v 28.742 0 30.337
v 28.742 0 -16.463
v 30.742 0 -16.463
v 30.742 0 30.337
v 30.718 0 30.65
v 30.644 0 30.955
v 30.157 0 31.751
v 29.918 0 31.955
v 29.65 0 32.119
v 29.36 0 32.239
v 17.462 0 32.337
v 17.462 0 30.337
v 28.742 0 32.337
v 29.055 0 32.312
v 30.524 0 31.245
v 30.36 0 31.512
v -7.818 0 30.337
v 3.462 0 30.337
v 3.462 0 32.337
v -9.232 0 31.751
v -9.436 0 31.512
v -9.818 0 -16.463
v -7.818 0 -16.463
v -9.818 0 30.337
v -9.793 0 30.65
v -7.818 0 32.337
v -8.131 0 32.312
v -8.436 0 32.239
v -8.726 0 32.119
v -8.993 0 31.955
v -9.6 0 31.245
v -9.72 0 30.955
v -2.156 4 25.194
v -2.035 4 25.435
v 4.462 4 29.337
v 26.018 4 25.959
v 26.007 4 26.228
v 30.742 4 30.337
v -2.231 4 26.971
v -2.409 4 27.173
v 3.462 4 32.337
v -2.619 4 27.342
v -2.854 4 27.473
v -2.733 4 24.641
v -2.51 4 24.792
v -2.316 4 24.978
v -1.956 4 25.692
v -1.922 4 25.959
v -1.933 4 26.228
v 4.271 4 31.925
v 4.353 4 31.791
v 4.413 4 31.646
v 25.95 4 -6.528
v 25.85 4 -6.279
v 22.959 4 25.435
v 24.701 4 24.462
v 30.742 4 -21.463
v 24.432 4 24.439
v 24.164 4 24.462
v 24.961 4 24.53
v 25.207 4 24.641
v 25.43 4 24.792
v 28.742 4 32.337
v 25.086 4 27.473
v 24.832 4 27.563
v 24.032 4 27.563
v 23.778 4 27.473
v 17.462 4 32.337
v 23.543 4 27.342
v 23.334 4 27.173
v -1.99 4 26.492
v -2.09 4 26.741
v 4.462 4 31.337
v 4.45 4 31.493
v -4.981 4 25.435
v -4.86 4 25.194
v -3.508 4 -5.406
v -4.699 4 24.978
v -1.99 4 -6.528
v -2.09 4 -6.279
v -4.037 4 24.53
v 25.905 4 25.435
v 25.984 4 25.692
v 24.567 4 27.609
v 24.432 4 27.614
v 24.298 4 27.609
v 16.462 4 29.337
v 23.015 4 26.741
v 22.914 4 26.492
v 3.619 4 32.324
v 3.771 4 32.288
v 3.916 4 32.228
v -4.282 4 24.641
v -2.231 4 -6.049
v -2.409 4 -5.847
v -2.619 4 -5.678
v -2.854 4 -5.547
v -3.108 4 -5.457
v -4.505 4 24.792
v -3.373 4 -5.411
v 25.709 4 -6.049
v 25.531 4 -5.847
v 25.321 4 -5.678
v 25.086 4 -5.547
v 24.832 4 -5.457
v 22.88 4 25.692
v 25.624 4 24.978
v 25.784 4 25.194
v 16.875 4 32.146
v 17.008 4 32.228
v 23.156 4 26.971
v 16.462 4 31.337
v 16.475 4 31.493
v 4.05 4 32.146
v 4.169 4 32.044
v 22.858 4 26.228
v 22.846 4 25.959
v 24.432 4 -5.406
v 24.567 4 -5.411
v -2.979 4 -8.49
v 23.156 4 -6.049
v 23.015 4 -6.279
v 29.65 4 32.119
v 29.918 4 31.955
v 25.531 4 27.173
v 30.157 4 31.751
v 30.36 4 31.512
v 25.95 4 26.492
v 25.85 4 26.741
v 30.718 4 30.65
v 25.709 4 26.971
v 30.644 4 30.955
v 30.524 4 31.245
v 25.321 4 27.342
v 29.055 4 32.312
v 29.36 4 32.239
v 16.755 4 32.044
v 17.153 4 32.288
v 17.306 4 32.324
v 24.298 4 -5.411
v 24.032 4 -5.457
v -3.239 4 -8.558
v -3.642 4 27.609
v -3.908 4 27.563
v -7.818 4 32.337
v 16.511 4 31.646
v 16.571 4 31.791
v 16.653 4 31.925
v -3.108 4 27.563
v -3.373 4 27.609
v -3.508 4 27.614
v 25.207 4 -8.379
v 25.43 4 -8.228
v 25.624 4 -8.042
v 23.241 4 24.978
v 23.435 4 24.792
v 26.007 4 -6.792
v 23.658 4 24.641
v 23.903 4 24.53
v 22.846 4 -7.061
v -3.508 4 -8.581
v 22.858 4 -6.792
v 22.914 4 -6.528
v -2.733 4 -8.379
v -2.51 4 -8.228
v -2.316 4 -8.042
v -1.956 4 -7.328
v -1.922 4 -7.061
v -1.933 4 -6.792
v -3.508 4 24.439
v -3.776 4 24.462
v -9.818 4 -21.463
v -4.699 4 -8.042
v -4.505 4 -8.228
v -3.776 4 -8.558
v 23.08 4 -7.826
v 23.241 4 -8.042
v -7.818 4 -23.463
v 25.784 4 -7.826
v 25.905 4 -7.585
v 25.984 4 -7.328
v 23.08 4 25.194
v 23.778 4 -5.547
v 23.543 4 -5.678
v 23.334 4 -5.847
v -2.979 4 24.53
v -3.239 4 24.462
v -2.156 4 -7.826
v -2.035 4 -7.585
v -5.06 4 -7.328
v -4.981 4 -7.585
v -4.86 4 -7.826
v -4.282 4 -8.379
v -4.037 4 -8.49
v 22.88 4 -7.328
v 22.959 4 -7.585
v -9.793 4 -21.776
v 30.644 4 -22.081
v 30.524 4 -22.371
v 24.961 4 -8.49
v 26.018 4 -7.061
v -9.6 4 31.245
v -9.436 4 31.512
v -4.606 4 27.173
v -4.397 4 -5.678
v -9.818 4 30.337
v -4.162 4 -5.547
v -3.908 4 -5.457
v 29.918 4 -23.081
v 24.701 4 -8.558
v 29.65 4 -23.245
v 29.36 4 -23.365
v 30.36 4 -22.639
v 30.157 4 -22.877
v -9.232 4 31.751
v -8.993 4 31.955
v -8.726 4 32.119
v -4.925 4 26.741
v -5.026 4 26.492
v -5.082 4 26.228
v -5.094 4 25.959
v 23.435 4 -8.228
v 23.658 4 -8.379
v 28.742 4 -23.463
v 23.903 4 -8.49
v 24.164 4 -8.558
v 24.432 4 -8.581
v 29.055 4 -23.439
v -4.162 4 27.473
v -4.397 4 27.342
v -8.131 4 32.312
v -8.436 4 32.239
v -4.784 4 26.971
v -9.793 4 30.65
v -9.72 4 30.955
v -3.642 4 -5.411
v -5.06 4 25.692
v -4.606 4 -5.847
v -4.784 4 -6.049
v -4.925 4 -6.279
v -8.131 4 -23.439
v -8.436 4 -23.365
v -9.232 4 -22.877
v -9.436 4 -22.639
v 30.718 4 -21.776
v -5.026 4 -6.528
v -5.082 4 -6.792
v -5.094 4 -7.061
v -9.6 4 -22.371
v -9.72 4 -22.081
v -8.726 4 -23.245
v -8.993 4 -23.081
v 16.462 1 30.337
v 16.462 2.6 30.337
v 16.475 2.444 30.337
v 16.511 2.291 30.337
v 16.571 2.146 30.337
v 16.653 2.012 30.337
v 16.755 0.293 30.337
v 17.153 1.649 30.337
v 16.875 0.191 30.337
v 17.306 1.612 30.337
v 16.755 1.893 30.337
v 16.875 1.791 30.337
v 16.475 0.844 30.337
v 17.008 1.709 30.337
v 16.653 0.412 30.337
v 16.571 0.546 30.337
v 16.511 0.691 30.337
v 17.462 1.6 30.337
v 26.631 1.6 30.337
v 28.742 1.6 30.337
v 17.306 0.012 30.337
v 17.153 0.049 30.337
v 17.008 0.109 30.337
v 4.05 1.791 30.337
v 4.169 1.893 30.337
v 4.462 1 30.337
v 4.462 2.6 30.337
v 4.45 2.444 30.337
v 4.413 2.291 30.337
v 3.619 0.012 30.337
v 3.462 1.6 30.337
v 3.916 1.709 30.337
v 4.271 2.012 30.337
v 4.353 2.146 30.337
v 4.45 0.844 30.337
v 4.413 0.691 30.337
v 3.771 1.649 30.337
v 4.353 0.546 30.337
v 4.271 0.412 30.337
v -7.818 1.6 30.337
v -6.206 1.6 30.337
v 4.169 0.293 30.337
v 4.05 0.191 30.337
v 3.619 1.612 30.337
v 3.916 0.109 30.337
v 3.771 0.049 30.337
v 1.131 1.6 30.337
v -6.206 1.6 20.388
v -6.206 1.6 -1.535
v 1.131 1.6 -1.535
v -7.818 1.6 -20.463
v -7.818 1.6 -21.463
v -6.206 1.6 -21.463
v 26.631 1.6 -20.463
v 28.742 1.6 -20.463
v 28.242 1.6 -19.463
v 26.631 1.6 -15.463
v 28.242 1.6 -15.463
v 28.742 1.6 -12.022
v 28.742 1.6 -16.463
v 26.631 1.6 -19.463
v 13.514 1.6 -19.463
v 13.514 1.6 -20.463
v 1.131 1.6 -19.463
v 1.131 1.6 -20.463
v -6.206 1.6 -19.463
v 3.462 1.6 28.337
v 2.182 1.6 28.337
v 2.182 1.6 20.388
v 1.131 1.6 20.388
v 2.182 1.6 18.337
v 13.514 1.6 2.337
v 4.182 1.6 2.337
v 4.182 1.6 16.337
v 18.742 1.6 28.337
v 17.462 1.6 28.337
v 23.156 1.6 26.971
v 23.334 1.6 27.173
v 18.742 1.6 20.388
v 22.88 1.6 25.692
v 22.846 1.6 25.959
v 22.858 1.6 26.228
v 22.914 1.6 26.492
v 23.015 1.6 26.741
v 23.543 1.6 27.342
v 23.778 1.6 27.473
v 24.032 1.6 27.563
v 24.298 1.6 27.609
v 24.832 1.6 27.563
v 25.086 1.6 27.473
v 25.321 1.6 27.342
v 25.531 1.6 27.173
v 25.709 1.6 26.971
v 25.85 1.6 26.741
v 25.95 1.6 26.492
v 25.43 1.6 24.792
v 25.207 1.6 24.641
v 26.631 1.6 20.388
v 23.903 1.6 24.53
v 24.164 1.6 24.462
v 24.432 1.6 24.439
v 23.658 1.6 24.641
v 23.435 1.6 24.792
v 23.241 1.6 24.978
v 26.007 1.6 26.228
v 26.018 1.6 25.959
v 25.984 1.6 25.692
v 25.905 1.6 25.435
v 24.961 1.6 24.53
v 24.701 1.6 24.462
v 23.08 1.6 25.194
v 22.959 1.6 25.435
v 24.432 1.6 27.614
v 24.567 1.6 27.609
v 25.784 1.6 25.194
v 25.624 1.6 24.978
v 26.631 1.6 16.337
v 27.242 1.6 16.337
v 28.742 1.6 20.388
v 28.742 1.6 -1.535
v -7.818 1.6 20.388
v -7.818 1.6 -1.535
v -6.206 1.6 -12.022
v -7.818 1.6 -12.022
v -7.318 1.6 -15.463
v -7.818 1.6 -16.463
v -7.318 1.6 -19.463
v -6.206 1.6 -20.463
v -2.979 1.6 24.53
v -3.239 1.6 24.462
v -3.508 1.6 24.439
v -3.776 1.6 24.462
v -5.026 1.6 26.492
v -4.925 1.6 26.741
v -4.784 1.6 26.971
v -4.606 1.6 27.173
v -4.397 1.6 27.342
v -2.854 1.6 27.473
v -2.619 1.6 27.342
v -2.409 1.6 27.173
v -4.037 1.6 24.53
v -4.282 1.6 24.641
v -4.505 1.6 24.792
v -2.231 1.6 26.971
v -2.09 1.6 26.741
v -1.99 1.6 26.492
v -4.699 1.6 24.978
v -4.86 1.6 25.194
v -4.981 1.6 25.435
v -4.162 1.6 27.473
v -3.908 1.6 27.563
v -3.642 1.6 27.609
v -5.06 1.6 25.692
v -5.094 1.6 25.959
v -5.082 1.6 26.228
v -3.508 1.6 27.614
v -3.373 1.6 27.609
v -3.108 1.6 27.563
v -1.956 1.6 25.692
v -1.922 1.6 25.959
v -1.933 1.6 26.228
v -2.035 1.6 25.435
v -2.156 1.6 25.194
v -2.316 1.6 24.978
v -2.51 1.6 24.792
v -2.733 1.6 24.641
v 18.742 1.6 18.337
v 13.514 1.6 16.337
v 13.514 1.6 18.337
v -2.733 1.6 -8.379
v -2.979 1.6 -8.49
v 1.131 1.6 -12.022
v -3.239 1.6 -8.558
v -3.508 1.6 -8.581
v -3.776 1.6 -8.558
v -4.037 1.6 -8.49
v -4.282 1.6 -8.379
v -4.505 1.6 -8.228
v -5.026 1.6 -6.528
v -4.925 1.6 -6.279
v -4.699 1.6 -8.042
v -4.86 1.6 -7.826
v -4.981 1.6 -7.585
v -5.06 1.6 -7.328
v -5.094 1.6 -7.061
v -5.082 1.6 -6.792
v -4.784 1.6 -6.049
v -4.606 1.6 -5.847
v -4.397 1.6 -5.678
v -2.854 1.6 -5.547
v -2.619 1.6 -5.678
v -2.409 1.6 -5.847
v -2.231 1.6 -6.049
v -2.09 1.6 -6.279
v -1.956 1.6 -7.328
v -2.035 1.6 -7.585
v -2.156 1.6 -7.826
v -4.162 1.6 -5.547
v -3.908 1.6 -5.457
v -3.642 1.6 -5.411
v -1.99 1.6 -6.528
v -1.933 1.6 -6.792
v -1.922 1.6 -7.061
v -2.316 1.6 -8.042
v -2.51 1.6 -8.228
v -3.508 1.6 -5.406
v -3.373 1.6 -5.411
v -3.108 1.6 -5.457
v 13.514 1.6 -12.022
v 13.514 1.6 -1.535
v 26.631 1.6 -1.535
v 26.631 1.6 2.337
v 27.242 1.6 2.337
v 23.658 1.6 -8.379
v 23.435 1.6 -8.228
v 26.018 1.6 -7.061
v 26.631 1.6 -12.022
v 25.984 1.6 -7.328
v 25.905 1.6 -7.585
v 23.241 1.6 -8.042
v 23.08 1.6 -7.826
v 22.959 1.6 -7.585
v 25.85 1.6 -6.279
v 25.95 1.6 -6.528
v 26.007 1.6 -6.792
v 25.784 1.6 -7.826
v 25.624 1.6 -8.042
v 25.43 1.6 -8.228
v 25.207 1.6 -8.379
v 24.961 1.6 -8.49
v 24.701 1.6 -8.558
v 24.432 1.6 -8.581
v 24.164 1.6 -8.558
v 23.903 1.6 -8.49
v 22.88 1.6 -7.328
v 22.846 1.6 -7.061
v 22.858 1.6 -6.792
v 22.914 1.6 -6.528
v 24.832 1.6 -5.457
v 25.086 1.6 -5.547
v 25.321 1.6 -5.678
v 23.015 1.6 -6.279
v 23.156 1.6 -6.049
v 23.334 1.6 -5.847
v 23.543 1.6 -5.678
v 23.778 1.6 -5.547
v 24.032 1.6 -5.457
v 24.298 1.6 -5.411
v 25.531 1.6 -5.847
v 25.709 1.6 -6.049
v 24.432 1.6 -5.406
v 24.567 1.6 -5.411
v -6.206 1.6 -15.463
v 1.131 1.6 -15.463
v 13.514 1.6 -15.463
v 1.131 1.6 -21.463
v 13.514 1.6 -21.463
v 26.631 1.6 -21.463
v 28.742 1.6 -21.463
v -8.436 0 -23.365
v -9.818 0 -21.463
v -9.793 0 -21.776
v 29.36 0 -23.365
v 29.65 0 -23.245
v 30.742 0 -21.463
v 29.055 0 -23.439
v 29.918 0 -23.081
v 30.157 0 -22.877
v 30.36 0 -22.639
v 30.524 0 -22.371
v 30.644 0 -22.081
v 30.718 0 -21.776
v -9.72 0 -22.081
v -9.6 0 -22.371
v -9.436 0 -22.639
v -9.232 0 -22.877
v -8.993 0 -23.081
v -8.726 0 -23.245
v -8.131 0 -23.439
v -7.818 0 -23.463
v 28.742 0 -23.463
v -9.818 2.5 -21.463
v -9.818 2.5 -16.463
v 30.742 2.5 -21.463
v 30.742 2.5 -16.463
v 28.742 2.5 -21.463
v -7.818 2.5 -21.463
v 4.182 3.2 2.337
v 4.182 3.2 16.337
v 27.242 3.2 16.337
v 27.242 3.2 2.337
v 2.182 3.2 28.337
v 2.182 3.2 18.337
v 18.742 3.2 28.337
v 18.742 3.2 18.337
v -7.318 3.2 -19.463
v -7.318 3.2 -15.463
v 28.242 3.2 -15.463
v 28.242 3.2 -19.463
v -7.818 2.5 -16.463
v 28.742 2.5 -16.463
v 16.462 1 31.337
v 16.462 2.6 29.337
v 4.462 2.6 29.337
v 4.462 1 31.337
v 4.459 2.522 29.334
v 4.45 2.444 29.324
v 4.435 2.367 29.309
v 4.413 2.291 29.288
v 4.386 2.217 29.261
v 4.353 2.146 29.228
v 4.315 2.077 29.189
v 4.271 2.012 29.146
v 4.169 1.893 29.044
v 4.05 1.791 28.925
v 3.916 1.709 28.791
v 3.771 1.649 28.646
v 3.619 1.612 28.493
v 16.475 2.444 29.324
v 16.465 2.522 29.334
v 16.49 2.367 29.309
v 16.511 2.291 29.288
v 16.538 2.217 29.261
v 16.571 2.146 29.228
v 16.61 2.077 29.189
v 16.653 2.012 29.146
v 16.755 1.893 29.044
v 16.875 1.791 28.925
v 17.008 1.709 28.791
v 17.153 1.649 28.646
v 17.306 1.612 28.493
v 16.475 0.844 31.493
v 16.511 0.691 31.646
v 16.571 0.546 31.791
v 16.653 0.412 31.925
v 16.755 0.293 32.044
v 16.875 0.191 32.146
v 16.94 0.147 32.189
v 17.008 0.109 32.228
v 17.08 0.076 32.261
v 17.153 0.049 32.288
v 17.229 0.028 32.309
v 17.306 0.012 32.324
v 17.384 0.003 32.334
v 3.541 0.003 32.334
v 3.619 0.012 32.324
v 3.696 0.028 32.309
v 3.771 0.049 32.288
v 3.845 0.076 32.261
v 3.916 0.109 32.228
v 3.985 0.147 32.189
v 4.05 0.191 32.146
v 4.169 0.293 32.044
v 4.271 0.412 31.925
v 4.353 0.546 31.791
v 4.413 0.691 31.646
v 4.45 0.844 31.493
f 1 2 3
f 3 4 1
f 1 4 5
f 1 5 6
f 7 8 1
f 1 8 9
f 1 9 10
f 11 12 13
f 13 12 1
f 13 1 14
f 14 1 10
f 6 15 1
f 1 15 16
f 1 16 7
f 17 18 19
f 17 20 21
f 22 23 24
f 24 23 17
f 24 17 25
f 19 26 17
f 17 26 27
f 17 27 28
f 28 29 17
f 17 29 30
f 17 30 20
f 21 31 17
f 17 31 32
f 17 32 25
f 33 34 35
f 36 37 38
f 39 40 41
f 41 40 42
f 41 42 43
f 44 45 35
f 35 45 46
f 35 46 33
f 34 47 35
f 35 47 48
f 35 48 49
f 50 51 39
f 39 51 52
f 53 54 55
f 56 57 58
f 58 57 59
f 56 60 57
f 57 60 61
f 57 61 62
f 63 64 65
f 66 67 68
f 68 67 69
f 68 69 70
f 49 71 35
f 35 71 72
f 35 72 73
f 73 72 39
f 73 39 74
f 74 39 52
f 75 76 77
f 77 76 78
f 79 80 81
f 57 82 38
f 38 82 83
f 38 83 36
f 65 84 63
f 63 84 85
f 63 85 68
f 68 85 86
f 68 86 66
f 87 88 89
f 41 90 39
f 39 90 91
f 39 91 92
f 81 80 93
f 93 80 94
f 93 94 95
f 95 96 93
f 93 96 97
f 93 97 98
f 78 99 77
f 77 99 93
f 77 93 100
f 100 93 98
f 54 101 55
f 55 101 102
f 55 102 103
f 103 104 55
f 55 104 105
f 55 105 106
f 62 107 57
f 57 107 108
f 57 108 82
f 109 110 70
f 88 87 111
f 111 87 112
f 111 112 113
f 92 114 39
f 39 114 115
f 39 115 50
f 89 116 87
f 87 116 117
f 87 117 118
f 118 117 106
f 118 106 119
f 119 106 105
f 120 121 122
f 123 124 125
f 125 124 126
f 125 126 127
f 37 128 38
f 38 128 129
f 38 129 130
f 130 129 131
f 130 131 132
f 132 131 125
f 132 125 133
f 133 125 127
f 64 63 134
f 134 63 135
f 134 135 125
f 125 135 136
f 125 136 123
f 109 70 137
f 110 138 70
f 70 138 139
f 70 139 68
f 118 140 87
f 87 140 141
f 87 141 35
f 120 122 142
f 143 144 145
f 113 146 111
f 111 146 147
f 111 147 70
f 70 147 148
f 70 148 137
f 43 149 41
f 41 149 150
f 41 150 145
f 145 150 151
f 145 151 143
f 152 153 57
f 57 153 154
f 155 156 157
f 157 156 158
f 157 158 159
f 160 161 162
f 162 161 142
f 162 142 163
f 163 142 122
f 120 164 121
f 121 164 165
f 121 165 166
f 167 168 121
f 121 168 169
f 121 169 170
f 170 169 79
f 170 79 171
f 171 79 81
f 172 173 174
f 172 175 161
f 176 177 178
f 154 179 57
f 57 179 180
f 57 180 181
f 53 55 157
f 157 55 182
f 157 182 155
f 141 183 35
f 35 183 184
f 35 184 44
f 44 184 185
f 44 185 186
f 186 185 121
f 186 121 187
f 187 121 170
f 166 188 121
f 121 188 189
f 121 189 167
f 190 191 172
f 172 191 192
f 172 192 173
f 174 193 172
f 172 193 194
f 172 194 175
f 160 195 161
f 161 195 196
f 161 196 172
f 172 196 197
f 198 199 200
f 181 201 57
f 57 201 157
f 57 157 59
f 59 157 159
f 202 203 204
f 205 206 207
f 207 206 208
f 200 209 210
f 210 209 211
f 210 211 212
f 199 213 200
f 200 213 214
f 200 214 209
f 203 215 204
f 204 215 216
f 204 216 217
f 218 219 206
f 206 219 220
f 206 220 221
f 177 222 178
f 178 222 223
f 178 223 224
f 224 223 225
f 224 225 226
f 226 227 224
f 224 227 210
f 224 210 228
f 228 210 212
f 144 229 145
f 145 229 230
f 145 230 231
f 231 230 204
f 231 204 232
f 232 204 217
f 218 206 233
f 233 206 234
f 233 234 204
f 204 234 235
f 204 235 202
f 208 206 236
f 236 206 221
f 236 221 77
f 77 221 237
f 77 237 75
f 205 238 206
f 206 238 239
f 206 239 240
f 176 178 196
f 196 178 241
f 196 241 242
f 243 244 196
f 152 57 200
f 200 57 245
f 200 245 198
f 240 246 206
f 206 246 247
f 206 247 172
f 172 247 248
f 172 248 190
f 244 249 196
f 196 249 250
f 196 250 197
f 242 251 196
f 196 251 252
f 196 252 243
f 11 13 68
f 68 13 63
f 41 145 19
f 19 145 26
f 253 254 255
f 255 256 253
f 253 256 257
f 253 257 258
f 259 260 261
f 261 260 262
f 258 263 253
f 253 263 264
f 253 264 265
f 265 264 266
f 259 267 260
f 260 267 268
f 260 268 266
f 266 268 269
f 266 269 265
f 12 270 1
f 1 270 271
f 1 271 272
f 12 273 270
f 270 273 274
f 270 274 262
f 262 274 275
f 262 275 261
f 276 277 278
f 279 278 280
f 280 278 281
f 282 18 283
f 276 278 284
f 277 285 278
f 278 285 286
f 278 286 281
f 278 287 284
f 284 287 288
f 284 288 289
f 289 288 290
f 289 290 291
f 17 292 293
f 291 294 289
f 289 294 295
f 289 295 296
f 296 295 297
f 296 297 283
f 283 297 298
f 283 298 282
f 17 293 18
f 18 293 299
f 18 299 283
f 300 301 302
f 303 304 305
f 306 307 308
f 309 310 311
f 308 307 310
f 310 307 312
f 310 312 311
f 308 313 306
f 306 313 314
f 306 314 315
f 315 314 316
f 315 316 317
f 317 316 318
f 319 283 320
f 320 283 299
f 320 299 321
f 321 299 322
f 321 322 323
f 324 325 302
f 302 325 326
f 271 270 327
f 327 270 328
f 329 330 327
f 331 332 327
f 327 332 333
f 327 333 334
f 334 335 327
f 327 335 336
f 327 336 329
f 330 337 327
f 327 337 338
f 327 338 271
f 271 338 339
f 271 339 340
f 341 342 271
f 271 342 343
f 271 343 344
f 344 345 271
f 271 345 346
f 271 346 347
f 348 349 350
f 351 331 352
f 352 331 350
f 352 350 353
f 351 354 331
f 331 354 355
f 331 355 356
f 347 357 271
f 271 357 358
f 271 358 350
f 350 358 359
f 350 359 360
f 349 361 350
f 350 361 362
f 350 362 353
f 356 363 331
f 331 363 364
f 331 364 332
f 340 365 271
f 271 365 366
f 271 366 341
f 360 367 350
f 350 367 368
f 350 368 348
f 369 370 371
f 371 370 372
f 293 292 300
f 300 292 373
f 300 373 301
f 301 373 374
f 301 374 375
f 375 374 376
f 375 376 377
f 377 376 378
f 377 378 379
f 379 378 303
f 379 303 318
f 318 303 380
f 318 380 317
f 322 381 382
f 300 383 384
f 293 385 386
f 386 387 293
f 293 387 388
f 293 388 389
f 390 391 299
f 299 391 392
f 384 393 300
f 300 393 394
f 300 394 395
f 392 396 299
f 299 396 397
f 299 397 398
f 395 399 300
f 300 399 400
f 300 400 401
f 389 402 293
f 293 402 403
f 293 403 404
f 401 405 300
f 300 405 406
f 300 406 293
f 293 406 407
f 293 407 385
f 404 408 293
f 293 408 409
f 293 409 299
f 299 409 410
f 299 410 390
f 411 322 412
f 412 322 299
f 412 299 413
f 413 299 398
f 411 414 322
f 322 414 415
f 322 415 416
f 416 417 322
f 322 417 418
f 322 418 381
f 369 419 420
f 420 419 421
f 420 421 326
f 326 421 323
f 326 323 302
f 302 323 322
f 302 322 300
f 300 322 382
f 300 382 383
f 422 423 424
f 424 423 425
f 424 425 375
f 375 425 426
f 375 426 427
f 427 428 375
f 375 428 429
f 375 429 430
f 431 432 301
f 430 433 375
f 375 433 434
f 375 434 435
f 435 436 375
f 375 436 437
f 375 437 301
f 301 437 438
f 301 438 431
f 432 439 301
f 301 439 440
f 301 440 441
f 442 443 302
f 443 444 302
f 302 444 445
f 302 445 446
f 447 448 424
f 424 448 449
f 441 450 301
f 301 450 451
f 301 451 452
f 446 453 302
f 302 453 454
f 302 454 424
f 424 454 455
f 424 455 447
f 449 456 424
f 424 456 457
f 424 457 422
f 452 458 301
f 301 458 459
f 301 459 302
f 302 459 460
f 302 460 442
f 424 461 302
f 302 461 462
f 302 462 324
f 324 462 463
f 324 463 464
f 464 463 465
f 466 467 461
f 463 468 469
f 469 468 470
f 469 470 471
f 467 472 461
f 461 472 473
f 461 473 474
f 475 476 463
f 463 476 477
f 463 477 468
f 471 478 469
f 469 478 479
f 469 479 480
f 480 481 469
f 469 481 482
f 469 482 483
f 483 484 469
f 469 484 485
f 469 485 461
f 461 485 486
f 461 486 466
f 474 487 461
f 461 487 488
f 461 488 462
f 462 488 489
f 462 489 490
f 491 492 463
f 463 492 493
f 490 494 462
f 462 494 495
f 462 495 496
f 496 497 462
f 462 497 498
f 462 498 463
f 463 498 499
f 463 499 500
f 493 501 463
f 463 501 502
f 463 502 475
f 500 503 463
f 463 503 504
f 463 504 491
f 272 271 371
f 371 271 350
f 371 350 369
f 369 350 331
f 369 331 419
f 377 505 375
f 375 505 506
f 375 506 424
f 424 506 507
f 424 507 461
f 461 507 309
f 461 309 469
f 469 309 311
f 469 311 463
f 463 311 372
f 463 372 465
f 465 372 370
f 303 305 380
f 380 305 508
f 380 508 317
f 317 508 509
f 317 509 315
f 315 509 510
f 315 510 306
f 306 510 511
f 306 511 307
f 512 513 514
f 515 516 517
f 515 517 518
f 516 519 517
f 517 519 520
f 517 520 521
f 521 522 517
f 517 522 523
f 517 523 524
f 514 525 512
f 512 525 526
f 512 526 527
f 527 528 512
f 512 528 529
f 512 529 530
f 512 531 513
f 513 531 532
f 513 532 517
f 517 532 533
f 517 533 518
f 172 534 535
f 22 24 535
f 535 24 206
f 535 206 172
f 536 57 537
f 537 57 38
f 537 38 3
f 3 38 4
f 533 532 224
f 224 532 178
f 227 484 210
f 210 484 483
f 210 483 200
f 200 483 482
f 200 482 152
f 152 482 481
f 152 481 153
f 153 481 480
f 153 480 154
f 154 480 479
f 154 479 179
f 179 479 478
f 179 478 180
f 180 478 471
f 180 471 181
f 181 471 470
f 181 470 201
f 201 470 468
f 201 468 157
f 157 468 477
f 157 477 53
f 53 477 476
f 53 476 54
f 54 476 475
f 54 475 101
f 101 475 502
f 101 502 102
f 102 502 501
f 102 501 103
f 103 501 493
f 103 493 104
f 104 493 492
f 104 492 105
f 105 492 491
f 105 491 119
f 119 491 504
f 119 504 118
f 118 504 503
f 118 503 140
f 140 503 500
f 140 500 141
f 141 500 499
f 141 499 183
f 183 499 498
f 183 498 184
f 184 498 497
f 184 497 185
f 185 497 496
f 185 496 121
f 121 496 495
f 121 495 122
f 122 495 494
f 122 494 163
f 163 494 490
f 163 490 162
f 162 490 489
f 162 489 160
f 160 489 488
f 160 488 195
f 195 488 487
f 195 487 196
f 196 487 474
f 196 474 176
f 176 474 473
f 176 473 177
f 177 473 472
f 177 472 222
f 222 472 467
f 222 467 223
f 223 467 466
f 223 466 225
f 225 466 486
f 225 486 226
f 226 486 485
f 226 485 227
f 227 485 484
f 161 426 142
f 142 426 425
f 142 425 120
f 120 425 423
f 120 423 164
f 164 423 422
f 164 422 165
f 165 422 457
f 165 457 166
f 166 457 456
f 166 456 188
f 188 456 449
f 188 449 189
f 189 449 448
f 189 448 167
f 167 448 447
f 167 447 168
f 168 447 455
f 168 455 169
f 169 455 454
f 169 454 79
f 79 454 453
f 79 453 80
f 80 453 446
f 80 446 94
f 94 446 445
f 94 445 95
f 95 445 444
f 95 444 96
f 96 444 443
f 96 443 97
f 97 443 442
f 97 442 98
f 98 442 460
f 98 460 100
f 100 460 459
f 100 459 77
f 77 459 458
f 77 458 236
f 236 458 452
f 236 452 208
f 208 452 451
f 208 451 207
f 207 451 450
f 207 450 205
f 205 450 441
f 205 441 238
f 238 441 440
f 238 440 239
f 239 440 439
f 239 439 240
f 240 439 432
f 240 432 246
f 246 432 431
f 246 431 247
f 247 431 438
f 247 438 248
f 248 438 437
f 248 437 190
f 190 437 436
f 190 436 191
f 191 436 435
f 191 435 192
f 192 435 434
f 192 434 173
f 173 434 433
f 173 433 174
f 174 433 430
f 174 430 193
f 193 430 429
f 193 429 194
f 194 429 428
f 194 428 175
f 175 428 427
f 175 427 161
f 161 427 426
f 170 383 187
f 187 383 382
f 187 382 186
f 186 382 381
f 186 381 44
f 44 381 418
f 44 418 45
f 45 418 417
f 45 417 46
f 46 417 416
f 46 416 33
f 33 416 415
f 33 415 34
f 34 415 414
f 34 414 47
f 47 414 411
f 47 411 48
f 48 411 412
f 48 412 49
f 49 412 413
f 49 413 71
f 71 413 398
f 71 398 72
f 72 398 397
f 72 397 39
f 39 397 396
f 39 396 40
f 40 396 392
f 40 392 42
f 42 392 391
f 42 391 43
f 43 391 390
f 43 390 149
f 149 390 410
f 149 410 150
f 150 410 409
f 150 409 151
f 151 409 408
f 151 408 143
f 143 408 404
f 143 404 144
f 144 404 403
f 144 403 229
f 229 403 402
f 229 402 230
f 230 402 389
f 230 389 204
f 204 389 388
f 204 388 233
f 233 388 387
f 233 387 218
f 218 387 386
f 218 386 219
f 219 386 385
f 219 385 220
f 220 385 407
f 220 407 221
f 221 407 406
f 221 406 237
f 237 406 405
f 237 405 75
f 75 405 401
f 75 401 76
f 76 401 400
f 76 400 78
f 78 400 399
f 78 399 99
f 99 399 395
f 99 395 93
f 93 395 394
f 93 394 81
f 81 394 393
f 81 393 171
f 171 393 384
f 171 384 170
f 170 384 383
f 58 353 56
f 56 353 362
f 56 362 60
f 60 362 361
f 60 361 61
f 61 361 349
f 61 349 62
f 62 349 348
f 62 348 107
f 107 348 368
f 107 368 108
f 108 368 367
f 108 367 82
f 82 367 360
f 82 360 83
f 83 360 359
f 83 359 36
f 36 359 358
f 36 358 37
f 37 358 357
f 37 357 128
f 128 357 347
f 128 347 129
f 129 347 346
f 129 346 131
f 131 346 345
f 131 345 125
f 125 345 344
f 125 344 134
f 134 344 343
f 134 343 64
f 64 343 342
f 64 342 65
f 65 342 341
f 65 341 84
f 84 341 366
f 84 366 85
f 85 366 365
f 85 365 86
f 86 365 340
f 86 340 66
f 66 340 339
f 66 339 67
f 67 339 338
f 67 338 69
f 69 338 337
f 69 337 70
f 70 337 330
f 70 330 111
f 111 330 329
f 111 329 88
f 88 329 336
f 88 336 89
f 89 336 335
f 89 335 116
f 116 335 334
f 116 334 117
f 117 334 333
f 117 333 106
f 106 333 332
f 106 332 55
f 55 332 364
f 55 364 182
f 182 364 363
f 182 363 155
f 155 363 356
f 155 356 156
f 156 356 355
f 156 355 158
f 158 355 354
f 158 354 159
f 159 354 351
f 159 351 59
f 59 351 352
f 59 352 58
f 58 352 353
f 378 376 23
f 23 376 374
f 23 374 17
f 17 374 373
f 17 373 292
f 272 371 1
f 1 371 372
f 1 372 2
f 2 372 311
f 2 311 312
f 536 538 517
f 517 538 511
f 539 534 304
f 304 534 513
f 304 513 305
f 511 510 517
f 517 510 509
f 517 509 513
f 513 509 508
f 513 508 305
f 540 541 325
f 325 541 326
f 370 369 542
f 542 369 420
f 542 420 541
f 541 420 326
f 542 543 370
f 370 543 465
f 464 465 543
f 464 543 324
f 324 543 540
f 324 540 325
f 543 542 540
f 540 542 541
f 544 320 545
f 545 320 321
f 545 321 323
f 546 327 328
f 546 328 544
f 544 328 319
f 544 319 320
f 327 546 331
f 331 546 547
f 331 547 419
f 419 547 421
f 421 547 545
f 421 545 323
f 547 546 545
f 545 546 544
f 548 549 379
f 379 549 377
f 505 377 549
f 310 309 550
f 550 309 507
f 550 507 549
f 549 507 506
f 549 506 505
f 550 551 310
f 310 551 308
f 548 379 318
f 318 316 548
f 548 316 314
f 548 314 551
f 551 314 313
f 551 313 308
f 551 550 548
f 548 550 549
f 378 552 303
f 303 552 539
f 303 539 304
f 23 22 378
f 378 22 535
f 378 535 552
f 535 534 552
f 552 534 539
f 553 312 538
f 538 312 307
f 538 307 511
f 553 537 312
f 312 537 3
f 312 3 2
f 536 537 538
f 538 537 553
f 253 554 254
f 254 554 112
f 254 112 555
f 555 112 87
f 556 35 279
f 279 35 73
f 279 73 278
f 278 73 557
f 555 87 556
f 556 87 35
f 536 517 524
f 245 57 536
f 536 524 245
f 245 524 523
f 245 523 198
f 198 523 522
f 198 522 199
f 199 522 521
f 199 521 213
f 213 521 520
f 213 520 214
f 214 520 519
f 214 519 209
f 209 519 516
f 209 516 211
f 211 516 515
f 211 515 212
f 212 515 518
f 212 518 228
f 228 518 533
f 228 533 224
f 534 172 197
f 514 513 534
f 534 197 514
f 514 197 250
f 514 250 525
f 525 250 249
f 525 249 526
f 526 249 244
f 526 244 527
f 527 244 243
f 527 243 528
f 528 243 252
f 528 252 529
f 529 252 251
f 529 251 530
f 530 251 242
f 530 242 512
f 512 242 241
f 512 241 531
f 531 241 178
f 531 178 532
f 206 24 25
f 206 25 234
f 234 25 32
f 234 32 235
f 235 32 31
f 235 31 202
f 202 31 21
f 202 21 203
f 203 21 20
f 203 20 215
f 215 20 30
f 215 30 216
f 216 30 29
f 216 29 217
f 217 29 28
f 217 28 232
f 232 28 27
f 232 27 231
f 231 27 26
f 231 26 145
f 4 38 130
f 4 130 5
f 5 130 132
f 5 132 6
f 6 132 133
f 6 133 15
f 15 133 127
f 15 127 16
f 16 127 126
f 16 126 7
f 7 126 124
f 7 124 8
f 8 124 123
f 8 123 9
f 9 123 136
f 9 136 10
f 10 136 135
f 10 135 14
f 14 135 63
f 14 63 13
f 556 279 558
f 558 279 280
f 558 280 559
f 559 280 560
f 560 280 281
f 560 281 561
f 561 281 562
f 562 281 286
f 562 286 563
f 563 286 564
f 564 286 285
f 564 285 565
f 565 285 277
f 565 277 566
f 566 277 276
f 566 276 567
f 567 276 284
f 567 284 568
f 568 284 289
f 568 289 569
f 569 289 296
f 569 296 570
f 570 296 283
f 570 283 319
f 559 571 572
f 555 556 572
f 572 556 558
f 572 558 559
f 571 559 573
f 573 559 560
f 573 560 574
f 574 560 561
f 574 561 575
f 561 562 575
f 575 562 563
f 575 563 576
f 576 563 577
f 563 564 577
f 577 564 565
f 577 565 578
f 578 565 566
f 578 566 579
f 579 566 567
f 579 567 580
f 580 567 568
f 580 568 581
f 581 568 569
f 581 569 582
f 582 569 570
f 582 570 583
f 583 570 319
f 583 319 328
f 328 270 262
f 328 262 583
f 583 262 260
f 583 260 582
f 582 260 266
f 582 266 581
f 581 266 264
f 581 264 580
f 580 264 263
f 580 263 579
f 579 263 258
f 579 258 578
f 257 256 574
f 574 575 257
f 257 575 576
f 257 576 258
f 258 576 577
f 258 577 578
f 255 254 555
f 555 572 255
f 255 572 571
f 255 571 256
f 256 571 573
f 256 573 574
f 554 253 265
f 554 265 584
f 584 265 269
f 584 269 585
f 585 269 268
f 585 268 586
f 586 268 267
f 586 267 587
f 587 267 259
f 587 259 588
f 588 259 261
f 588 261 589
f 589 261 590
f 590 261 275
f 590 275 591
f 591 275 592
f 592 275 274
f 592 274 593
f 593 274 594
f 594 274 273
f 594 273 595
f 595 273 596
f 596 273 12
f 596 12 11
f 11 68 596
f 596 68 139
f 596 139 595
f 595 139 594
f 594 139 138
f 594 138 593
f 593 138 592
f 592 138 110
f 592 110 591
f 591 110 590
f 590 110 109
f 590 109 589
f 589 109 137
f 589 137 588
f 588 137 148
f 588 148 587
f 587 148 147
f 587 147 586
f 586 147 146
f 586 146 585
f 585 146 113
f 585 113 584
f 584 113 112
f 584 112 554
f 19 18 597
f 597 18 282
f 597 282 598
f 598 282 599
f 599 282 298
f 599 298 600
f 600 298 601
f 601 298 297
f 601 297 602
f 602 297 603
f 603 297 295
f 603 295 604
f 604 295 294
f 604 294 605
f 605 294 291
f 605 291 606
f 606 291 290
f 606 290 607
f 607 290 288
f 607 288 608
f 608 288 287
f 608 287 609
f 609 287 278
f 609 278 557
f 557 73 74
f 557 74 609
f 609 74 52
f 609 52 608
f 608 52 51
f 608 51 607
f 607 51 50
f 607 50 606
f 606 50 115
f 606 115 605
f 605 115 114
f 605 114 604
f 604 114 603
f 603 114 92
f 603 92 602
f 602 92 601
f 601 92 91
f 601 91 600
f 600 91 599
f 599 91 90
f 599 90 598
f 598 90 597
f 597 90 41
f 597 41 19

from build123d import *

# Parameters (mm, degrees)
SKETCH1_R           = 1.5875000000000004
SKETCH1_R_2         = 1.5874999999999988
SKETCH1_R_3         = 1.5874999999999977
SKETCH1_R_4         = 1.5874999999999986
BOSS_EXTRUDE2_DEPTH = 4
CUT_EXTRUDE1_DEPTH  = 1.6
CUT_EXTRUDE2_DEPTH  = 1.6002
SKETCH4_W           = 2
SKETCH4_H           = 5
SKETCH4_W_2         = 2.000000000000001
CUT_EXTRUDE3_DEPTH  = 2.5
CUT_EXTRUDE4_DEPTH  = 3
FILLET1_R           = 2
FILLET2_R           = 1


with BuildPart() as part:
    # Sketch1 → Boss-Extrude2 (new body)
    with BuildSketch(Plane(origin=(0, 0, 0), x_dir=(1, 0, 0), z_dir=(0, 1, 0))):
        Polygon((-9.817707317102446, 23.463272745610922), (30.74229268289756, 23.463272745610926), (30.742292682897567, -32.336727254389075), (-9.81770731710244, -32.336727254389075), align=None)
        with Locations(Location((-3.5077073171024433, 6.993272745610932, 0), (0, 0, 270))):
            Circle(SKETCH1_R, mode=Mode.SUBTRACT)
        with Locations(Location((24.432292682897558, 6.993272745610931, 0), (0, 0, 270))):
            Circle(SKETCH1_R_2, mode=Mode.SUBTRACT)
        with Locations(Location((-3.5077073171024393, -26.026727254389073, 0), (0, 0, 270))):
            Circle(SKETCH1_R_3, mode=Mode.SUBTRACT)
        with Locations(Location((24.432292682897558, -26.026727254389073, 0), (0, 0, 270))):
            Circle(SKETCH1_R_4, mode=Mode.SUBTRACT)
    extrude(amount=BOSS_EXTRUDE2_DEPTH)

    # Sketch1<4> → Cut-Extrude1 (cut)
    with BuildSketch(Plane(origin=(0, 0, 0), x_dir=(1, 0, 0), z_dir=(0, 1, 0))):
        Polygon((-7.817707317102445, 21.463272745610922), (28.742292682897556, 21.463272745610926), (28.742292682897563, -30.336727254389075), (-7.817707317102438, -30.336727254389075), align=None)
    extrude(amount=CUT_EXTRUDE1_DEPTH, mode=Mode.SUBTRACT)

    # Sketch3 → Cut-Extrude2 (cut)
    with BuildSketch(Plane.XZ.offset(-1.6)):
        Polygon((-7.317707317102444, -15.463272745610924), (28.242292682897553, -15.463272745610924), (28.242292682897553, -19.463272745610922), (-7.317707317102443, -19.463272745610922), align=None)
        Polygon((2.182292682897542, 28.33672725438907), (18.74229268289756, 28.33672725438907), (18.74229268289756, 18.336727254389068), (2.1822926828975433, 18.336727254389068), align=None)
        Polygon((4.182292682897542, 16.336727254389075), (27.242292682897556, 16.336727254389075), (27.242292682897556, 2.3367272543890727), (4.182292682897544, 2.3367272543890727), align=None)
    extrude(amount=-CUT_EXTRUDE2_DEPTH, mode=Mode.SUBTRACT)

    # Sketch4 → Cut-Extrude3 (cut)
    with BuildSketch(Plane.XZ):
        with Locations((29.74229268289756, -18.96327274561092)):
            Rectangle(SKETCH4_W, SKETCH4_H)
        with Locations((-8.817707317102446, -18.96327274561092)):
            Rectangle(SKETCH4_W_2, SKETCH4_H)
    extrude(amount=-CUT_EXTRUDE3_DEPTH, mode=Mode.SUBTRACT)

    # Sketch5 → Cut-Extrude4 (cut)
    with BuildSketch(Plane(origin=(0, 0, 32.336727254389075), x_dir=(-1, 0, 0), z_dir=(0, 0, -1))):
        Polygon((-16.462292682897562, 4.000000000000003), (-4.462292682897565, 4.000000000000007), (-4.462292682897558, -5.590997478767573), (-16.462292682897562, -5.590997478767577), align=None)
    extrude(amount=CUT_EXTRUDE4_DEPTH, mode=Mode.SUBTRACT)

    # Fillet1
    fillet1_edges = [part.edges().sort_by_distance(p)[0] for p in [
        (-9.817707317102446, 2, -23.463272745610922),
        (30.74229268289756, 2, -23.463272745610926),
        (30.742292682897567, 2, 32.336727254389075),
        (-9.81770731710244, 2, 32.336727254389075),
    ]]
    fillet(fillet1_edges, radius=FILLET1_R)

    # Fillet2
    fillet2_edges = [part.edges().sort_by_distance(p)[0] for p in [
        (10.46229268289756, 1.6, 29.336727254389075),
        (4.462292682897564, 1.6, 29.836727254389075),
        (16.462292682897562, 1.6000000000000003, 29.836727254389075),
        (16.462292682897562, 2.000000000000001, 32.336727254389075),
        (4.462292682897563, 2.0000000000000036, 32.336727254389075),
        (16.462292682897562, 0, 31.336727254389075),
        (4.462292682897562, 0, 31.336727254389075),
    ]]
    fillet(fillet2_edges, radius=FILLET2_R - 0.0001)  # a hair under: the kernel refuses the full size


solid = part.part
